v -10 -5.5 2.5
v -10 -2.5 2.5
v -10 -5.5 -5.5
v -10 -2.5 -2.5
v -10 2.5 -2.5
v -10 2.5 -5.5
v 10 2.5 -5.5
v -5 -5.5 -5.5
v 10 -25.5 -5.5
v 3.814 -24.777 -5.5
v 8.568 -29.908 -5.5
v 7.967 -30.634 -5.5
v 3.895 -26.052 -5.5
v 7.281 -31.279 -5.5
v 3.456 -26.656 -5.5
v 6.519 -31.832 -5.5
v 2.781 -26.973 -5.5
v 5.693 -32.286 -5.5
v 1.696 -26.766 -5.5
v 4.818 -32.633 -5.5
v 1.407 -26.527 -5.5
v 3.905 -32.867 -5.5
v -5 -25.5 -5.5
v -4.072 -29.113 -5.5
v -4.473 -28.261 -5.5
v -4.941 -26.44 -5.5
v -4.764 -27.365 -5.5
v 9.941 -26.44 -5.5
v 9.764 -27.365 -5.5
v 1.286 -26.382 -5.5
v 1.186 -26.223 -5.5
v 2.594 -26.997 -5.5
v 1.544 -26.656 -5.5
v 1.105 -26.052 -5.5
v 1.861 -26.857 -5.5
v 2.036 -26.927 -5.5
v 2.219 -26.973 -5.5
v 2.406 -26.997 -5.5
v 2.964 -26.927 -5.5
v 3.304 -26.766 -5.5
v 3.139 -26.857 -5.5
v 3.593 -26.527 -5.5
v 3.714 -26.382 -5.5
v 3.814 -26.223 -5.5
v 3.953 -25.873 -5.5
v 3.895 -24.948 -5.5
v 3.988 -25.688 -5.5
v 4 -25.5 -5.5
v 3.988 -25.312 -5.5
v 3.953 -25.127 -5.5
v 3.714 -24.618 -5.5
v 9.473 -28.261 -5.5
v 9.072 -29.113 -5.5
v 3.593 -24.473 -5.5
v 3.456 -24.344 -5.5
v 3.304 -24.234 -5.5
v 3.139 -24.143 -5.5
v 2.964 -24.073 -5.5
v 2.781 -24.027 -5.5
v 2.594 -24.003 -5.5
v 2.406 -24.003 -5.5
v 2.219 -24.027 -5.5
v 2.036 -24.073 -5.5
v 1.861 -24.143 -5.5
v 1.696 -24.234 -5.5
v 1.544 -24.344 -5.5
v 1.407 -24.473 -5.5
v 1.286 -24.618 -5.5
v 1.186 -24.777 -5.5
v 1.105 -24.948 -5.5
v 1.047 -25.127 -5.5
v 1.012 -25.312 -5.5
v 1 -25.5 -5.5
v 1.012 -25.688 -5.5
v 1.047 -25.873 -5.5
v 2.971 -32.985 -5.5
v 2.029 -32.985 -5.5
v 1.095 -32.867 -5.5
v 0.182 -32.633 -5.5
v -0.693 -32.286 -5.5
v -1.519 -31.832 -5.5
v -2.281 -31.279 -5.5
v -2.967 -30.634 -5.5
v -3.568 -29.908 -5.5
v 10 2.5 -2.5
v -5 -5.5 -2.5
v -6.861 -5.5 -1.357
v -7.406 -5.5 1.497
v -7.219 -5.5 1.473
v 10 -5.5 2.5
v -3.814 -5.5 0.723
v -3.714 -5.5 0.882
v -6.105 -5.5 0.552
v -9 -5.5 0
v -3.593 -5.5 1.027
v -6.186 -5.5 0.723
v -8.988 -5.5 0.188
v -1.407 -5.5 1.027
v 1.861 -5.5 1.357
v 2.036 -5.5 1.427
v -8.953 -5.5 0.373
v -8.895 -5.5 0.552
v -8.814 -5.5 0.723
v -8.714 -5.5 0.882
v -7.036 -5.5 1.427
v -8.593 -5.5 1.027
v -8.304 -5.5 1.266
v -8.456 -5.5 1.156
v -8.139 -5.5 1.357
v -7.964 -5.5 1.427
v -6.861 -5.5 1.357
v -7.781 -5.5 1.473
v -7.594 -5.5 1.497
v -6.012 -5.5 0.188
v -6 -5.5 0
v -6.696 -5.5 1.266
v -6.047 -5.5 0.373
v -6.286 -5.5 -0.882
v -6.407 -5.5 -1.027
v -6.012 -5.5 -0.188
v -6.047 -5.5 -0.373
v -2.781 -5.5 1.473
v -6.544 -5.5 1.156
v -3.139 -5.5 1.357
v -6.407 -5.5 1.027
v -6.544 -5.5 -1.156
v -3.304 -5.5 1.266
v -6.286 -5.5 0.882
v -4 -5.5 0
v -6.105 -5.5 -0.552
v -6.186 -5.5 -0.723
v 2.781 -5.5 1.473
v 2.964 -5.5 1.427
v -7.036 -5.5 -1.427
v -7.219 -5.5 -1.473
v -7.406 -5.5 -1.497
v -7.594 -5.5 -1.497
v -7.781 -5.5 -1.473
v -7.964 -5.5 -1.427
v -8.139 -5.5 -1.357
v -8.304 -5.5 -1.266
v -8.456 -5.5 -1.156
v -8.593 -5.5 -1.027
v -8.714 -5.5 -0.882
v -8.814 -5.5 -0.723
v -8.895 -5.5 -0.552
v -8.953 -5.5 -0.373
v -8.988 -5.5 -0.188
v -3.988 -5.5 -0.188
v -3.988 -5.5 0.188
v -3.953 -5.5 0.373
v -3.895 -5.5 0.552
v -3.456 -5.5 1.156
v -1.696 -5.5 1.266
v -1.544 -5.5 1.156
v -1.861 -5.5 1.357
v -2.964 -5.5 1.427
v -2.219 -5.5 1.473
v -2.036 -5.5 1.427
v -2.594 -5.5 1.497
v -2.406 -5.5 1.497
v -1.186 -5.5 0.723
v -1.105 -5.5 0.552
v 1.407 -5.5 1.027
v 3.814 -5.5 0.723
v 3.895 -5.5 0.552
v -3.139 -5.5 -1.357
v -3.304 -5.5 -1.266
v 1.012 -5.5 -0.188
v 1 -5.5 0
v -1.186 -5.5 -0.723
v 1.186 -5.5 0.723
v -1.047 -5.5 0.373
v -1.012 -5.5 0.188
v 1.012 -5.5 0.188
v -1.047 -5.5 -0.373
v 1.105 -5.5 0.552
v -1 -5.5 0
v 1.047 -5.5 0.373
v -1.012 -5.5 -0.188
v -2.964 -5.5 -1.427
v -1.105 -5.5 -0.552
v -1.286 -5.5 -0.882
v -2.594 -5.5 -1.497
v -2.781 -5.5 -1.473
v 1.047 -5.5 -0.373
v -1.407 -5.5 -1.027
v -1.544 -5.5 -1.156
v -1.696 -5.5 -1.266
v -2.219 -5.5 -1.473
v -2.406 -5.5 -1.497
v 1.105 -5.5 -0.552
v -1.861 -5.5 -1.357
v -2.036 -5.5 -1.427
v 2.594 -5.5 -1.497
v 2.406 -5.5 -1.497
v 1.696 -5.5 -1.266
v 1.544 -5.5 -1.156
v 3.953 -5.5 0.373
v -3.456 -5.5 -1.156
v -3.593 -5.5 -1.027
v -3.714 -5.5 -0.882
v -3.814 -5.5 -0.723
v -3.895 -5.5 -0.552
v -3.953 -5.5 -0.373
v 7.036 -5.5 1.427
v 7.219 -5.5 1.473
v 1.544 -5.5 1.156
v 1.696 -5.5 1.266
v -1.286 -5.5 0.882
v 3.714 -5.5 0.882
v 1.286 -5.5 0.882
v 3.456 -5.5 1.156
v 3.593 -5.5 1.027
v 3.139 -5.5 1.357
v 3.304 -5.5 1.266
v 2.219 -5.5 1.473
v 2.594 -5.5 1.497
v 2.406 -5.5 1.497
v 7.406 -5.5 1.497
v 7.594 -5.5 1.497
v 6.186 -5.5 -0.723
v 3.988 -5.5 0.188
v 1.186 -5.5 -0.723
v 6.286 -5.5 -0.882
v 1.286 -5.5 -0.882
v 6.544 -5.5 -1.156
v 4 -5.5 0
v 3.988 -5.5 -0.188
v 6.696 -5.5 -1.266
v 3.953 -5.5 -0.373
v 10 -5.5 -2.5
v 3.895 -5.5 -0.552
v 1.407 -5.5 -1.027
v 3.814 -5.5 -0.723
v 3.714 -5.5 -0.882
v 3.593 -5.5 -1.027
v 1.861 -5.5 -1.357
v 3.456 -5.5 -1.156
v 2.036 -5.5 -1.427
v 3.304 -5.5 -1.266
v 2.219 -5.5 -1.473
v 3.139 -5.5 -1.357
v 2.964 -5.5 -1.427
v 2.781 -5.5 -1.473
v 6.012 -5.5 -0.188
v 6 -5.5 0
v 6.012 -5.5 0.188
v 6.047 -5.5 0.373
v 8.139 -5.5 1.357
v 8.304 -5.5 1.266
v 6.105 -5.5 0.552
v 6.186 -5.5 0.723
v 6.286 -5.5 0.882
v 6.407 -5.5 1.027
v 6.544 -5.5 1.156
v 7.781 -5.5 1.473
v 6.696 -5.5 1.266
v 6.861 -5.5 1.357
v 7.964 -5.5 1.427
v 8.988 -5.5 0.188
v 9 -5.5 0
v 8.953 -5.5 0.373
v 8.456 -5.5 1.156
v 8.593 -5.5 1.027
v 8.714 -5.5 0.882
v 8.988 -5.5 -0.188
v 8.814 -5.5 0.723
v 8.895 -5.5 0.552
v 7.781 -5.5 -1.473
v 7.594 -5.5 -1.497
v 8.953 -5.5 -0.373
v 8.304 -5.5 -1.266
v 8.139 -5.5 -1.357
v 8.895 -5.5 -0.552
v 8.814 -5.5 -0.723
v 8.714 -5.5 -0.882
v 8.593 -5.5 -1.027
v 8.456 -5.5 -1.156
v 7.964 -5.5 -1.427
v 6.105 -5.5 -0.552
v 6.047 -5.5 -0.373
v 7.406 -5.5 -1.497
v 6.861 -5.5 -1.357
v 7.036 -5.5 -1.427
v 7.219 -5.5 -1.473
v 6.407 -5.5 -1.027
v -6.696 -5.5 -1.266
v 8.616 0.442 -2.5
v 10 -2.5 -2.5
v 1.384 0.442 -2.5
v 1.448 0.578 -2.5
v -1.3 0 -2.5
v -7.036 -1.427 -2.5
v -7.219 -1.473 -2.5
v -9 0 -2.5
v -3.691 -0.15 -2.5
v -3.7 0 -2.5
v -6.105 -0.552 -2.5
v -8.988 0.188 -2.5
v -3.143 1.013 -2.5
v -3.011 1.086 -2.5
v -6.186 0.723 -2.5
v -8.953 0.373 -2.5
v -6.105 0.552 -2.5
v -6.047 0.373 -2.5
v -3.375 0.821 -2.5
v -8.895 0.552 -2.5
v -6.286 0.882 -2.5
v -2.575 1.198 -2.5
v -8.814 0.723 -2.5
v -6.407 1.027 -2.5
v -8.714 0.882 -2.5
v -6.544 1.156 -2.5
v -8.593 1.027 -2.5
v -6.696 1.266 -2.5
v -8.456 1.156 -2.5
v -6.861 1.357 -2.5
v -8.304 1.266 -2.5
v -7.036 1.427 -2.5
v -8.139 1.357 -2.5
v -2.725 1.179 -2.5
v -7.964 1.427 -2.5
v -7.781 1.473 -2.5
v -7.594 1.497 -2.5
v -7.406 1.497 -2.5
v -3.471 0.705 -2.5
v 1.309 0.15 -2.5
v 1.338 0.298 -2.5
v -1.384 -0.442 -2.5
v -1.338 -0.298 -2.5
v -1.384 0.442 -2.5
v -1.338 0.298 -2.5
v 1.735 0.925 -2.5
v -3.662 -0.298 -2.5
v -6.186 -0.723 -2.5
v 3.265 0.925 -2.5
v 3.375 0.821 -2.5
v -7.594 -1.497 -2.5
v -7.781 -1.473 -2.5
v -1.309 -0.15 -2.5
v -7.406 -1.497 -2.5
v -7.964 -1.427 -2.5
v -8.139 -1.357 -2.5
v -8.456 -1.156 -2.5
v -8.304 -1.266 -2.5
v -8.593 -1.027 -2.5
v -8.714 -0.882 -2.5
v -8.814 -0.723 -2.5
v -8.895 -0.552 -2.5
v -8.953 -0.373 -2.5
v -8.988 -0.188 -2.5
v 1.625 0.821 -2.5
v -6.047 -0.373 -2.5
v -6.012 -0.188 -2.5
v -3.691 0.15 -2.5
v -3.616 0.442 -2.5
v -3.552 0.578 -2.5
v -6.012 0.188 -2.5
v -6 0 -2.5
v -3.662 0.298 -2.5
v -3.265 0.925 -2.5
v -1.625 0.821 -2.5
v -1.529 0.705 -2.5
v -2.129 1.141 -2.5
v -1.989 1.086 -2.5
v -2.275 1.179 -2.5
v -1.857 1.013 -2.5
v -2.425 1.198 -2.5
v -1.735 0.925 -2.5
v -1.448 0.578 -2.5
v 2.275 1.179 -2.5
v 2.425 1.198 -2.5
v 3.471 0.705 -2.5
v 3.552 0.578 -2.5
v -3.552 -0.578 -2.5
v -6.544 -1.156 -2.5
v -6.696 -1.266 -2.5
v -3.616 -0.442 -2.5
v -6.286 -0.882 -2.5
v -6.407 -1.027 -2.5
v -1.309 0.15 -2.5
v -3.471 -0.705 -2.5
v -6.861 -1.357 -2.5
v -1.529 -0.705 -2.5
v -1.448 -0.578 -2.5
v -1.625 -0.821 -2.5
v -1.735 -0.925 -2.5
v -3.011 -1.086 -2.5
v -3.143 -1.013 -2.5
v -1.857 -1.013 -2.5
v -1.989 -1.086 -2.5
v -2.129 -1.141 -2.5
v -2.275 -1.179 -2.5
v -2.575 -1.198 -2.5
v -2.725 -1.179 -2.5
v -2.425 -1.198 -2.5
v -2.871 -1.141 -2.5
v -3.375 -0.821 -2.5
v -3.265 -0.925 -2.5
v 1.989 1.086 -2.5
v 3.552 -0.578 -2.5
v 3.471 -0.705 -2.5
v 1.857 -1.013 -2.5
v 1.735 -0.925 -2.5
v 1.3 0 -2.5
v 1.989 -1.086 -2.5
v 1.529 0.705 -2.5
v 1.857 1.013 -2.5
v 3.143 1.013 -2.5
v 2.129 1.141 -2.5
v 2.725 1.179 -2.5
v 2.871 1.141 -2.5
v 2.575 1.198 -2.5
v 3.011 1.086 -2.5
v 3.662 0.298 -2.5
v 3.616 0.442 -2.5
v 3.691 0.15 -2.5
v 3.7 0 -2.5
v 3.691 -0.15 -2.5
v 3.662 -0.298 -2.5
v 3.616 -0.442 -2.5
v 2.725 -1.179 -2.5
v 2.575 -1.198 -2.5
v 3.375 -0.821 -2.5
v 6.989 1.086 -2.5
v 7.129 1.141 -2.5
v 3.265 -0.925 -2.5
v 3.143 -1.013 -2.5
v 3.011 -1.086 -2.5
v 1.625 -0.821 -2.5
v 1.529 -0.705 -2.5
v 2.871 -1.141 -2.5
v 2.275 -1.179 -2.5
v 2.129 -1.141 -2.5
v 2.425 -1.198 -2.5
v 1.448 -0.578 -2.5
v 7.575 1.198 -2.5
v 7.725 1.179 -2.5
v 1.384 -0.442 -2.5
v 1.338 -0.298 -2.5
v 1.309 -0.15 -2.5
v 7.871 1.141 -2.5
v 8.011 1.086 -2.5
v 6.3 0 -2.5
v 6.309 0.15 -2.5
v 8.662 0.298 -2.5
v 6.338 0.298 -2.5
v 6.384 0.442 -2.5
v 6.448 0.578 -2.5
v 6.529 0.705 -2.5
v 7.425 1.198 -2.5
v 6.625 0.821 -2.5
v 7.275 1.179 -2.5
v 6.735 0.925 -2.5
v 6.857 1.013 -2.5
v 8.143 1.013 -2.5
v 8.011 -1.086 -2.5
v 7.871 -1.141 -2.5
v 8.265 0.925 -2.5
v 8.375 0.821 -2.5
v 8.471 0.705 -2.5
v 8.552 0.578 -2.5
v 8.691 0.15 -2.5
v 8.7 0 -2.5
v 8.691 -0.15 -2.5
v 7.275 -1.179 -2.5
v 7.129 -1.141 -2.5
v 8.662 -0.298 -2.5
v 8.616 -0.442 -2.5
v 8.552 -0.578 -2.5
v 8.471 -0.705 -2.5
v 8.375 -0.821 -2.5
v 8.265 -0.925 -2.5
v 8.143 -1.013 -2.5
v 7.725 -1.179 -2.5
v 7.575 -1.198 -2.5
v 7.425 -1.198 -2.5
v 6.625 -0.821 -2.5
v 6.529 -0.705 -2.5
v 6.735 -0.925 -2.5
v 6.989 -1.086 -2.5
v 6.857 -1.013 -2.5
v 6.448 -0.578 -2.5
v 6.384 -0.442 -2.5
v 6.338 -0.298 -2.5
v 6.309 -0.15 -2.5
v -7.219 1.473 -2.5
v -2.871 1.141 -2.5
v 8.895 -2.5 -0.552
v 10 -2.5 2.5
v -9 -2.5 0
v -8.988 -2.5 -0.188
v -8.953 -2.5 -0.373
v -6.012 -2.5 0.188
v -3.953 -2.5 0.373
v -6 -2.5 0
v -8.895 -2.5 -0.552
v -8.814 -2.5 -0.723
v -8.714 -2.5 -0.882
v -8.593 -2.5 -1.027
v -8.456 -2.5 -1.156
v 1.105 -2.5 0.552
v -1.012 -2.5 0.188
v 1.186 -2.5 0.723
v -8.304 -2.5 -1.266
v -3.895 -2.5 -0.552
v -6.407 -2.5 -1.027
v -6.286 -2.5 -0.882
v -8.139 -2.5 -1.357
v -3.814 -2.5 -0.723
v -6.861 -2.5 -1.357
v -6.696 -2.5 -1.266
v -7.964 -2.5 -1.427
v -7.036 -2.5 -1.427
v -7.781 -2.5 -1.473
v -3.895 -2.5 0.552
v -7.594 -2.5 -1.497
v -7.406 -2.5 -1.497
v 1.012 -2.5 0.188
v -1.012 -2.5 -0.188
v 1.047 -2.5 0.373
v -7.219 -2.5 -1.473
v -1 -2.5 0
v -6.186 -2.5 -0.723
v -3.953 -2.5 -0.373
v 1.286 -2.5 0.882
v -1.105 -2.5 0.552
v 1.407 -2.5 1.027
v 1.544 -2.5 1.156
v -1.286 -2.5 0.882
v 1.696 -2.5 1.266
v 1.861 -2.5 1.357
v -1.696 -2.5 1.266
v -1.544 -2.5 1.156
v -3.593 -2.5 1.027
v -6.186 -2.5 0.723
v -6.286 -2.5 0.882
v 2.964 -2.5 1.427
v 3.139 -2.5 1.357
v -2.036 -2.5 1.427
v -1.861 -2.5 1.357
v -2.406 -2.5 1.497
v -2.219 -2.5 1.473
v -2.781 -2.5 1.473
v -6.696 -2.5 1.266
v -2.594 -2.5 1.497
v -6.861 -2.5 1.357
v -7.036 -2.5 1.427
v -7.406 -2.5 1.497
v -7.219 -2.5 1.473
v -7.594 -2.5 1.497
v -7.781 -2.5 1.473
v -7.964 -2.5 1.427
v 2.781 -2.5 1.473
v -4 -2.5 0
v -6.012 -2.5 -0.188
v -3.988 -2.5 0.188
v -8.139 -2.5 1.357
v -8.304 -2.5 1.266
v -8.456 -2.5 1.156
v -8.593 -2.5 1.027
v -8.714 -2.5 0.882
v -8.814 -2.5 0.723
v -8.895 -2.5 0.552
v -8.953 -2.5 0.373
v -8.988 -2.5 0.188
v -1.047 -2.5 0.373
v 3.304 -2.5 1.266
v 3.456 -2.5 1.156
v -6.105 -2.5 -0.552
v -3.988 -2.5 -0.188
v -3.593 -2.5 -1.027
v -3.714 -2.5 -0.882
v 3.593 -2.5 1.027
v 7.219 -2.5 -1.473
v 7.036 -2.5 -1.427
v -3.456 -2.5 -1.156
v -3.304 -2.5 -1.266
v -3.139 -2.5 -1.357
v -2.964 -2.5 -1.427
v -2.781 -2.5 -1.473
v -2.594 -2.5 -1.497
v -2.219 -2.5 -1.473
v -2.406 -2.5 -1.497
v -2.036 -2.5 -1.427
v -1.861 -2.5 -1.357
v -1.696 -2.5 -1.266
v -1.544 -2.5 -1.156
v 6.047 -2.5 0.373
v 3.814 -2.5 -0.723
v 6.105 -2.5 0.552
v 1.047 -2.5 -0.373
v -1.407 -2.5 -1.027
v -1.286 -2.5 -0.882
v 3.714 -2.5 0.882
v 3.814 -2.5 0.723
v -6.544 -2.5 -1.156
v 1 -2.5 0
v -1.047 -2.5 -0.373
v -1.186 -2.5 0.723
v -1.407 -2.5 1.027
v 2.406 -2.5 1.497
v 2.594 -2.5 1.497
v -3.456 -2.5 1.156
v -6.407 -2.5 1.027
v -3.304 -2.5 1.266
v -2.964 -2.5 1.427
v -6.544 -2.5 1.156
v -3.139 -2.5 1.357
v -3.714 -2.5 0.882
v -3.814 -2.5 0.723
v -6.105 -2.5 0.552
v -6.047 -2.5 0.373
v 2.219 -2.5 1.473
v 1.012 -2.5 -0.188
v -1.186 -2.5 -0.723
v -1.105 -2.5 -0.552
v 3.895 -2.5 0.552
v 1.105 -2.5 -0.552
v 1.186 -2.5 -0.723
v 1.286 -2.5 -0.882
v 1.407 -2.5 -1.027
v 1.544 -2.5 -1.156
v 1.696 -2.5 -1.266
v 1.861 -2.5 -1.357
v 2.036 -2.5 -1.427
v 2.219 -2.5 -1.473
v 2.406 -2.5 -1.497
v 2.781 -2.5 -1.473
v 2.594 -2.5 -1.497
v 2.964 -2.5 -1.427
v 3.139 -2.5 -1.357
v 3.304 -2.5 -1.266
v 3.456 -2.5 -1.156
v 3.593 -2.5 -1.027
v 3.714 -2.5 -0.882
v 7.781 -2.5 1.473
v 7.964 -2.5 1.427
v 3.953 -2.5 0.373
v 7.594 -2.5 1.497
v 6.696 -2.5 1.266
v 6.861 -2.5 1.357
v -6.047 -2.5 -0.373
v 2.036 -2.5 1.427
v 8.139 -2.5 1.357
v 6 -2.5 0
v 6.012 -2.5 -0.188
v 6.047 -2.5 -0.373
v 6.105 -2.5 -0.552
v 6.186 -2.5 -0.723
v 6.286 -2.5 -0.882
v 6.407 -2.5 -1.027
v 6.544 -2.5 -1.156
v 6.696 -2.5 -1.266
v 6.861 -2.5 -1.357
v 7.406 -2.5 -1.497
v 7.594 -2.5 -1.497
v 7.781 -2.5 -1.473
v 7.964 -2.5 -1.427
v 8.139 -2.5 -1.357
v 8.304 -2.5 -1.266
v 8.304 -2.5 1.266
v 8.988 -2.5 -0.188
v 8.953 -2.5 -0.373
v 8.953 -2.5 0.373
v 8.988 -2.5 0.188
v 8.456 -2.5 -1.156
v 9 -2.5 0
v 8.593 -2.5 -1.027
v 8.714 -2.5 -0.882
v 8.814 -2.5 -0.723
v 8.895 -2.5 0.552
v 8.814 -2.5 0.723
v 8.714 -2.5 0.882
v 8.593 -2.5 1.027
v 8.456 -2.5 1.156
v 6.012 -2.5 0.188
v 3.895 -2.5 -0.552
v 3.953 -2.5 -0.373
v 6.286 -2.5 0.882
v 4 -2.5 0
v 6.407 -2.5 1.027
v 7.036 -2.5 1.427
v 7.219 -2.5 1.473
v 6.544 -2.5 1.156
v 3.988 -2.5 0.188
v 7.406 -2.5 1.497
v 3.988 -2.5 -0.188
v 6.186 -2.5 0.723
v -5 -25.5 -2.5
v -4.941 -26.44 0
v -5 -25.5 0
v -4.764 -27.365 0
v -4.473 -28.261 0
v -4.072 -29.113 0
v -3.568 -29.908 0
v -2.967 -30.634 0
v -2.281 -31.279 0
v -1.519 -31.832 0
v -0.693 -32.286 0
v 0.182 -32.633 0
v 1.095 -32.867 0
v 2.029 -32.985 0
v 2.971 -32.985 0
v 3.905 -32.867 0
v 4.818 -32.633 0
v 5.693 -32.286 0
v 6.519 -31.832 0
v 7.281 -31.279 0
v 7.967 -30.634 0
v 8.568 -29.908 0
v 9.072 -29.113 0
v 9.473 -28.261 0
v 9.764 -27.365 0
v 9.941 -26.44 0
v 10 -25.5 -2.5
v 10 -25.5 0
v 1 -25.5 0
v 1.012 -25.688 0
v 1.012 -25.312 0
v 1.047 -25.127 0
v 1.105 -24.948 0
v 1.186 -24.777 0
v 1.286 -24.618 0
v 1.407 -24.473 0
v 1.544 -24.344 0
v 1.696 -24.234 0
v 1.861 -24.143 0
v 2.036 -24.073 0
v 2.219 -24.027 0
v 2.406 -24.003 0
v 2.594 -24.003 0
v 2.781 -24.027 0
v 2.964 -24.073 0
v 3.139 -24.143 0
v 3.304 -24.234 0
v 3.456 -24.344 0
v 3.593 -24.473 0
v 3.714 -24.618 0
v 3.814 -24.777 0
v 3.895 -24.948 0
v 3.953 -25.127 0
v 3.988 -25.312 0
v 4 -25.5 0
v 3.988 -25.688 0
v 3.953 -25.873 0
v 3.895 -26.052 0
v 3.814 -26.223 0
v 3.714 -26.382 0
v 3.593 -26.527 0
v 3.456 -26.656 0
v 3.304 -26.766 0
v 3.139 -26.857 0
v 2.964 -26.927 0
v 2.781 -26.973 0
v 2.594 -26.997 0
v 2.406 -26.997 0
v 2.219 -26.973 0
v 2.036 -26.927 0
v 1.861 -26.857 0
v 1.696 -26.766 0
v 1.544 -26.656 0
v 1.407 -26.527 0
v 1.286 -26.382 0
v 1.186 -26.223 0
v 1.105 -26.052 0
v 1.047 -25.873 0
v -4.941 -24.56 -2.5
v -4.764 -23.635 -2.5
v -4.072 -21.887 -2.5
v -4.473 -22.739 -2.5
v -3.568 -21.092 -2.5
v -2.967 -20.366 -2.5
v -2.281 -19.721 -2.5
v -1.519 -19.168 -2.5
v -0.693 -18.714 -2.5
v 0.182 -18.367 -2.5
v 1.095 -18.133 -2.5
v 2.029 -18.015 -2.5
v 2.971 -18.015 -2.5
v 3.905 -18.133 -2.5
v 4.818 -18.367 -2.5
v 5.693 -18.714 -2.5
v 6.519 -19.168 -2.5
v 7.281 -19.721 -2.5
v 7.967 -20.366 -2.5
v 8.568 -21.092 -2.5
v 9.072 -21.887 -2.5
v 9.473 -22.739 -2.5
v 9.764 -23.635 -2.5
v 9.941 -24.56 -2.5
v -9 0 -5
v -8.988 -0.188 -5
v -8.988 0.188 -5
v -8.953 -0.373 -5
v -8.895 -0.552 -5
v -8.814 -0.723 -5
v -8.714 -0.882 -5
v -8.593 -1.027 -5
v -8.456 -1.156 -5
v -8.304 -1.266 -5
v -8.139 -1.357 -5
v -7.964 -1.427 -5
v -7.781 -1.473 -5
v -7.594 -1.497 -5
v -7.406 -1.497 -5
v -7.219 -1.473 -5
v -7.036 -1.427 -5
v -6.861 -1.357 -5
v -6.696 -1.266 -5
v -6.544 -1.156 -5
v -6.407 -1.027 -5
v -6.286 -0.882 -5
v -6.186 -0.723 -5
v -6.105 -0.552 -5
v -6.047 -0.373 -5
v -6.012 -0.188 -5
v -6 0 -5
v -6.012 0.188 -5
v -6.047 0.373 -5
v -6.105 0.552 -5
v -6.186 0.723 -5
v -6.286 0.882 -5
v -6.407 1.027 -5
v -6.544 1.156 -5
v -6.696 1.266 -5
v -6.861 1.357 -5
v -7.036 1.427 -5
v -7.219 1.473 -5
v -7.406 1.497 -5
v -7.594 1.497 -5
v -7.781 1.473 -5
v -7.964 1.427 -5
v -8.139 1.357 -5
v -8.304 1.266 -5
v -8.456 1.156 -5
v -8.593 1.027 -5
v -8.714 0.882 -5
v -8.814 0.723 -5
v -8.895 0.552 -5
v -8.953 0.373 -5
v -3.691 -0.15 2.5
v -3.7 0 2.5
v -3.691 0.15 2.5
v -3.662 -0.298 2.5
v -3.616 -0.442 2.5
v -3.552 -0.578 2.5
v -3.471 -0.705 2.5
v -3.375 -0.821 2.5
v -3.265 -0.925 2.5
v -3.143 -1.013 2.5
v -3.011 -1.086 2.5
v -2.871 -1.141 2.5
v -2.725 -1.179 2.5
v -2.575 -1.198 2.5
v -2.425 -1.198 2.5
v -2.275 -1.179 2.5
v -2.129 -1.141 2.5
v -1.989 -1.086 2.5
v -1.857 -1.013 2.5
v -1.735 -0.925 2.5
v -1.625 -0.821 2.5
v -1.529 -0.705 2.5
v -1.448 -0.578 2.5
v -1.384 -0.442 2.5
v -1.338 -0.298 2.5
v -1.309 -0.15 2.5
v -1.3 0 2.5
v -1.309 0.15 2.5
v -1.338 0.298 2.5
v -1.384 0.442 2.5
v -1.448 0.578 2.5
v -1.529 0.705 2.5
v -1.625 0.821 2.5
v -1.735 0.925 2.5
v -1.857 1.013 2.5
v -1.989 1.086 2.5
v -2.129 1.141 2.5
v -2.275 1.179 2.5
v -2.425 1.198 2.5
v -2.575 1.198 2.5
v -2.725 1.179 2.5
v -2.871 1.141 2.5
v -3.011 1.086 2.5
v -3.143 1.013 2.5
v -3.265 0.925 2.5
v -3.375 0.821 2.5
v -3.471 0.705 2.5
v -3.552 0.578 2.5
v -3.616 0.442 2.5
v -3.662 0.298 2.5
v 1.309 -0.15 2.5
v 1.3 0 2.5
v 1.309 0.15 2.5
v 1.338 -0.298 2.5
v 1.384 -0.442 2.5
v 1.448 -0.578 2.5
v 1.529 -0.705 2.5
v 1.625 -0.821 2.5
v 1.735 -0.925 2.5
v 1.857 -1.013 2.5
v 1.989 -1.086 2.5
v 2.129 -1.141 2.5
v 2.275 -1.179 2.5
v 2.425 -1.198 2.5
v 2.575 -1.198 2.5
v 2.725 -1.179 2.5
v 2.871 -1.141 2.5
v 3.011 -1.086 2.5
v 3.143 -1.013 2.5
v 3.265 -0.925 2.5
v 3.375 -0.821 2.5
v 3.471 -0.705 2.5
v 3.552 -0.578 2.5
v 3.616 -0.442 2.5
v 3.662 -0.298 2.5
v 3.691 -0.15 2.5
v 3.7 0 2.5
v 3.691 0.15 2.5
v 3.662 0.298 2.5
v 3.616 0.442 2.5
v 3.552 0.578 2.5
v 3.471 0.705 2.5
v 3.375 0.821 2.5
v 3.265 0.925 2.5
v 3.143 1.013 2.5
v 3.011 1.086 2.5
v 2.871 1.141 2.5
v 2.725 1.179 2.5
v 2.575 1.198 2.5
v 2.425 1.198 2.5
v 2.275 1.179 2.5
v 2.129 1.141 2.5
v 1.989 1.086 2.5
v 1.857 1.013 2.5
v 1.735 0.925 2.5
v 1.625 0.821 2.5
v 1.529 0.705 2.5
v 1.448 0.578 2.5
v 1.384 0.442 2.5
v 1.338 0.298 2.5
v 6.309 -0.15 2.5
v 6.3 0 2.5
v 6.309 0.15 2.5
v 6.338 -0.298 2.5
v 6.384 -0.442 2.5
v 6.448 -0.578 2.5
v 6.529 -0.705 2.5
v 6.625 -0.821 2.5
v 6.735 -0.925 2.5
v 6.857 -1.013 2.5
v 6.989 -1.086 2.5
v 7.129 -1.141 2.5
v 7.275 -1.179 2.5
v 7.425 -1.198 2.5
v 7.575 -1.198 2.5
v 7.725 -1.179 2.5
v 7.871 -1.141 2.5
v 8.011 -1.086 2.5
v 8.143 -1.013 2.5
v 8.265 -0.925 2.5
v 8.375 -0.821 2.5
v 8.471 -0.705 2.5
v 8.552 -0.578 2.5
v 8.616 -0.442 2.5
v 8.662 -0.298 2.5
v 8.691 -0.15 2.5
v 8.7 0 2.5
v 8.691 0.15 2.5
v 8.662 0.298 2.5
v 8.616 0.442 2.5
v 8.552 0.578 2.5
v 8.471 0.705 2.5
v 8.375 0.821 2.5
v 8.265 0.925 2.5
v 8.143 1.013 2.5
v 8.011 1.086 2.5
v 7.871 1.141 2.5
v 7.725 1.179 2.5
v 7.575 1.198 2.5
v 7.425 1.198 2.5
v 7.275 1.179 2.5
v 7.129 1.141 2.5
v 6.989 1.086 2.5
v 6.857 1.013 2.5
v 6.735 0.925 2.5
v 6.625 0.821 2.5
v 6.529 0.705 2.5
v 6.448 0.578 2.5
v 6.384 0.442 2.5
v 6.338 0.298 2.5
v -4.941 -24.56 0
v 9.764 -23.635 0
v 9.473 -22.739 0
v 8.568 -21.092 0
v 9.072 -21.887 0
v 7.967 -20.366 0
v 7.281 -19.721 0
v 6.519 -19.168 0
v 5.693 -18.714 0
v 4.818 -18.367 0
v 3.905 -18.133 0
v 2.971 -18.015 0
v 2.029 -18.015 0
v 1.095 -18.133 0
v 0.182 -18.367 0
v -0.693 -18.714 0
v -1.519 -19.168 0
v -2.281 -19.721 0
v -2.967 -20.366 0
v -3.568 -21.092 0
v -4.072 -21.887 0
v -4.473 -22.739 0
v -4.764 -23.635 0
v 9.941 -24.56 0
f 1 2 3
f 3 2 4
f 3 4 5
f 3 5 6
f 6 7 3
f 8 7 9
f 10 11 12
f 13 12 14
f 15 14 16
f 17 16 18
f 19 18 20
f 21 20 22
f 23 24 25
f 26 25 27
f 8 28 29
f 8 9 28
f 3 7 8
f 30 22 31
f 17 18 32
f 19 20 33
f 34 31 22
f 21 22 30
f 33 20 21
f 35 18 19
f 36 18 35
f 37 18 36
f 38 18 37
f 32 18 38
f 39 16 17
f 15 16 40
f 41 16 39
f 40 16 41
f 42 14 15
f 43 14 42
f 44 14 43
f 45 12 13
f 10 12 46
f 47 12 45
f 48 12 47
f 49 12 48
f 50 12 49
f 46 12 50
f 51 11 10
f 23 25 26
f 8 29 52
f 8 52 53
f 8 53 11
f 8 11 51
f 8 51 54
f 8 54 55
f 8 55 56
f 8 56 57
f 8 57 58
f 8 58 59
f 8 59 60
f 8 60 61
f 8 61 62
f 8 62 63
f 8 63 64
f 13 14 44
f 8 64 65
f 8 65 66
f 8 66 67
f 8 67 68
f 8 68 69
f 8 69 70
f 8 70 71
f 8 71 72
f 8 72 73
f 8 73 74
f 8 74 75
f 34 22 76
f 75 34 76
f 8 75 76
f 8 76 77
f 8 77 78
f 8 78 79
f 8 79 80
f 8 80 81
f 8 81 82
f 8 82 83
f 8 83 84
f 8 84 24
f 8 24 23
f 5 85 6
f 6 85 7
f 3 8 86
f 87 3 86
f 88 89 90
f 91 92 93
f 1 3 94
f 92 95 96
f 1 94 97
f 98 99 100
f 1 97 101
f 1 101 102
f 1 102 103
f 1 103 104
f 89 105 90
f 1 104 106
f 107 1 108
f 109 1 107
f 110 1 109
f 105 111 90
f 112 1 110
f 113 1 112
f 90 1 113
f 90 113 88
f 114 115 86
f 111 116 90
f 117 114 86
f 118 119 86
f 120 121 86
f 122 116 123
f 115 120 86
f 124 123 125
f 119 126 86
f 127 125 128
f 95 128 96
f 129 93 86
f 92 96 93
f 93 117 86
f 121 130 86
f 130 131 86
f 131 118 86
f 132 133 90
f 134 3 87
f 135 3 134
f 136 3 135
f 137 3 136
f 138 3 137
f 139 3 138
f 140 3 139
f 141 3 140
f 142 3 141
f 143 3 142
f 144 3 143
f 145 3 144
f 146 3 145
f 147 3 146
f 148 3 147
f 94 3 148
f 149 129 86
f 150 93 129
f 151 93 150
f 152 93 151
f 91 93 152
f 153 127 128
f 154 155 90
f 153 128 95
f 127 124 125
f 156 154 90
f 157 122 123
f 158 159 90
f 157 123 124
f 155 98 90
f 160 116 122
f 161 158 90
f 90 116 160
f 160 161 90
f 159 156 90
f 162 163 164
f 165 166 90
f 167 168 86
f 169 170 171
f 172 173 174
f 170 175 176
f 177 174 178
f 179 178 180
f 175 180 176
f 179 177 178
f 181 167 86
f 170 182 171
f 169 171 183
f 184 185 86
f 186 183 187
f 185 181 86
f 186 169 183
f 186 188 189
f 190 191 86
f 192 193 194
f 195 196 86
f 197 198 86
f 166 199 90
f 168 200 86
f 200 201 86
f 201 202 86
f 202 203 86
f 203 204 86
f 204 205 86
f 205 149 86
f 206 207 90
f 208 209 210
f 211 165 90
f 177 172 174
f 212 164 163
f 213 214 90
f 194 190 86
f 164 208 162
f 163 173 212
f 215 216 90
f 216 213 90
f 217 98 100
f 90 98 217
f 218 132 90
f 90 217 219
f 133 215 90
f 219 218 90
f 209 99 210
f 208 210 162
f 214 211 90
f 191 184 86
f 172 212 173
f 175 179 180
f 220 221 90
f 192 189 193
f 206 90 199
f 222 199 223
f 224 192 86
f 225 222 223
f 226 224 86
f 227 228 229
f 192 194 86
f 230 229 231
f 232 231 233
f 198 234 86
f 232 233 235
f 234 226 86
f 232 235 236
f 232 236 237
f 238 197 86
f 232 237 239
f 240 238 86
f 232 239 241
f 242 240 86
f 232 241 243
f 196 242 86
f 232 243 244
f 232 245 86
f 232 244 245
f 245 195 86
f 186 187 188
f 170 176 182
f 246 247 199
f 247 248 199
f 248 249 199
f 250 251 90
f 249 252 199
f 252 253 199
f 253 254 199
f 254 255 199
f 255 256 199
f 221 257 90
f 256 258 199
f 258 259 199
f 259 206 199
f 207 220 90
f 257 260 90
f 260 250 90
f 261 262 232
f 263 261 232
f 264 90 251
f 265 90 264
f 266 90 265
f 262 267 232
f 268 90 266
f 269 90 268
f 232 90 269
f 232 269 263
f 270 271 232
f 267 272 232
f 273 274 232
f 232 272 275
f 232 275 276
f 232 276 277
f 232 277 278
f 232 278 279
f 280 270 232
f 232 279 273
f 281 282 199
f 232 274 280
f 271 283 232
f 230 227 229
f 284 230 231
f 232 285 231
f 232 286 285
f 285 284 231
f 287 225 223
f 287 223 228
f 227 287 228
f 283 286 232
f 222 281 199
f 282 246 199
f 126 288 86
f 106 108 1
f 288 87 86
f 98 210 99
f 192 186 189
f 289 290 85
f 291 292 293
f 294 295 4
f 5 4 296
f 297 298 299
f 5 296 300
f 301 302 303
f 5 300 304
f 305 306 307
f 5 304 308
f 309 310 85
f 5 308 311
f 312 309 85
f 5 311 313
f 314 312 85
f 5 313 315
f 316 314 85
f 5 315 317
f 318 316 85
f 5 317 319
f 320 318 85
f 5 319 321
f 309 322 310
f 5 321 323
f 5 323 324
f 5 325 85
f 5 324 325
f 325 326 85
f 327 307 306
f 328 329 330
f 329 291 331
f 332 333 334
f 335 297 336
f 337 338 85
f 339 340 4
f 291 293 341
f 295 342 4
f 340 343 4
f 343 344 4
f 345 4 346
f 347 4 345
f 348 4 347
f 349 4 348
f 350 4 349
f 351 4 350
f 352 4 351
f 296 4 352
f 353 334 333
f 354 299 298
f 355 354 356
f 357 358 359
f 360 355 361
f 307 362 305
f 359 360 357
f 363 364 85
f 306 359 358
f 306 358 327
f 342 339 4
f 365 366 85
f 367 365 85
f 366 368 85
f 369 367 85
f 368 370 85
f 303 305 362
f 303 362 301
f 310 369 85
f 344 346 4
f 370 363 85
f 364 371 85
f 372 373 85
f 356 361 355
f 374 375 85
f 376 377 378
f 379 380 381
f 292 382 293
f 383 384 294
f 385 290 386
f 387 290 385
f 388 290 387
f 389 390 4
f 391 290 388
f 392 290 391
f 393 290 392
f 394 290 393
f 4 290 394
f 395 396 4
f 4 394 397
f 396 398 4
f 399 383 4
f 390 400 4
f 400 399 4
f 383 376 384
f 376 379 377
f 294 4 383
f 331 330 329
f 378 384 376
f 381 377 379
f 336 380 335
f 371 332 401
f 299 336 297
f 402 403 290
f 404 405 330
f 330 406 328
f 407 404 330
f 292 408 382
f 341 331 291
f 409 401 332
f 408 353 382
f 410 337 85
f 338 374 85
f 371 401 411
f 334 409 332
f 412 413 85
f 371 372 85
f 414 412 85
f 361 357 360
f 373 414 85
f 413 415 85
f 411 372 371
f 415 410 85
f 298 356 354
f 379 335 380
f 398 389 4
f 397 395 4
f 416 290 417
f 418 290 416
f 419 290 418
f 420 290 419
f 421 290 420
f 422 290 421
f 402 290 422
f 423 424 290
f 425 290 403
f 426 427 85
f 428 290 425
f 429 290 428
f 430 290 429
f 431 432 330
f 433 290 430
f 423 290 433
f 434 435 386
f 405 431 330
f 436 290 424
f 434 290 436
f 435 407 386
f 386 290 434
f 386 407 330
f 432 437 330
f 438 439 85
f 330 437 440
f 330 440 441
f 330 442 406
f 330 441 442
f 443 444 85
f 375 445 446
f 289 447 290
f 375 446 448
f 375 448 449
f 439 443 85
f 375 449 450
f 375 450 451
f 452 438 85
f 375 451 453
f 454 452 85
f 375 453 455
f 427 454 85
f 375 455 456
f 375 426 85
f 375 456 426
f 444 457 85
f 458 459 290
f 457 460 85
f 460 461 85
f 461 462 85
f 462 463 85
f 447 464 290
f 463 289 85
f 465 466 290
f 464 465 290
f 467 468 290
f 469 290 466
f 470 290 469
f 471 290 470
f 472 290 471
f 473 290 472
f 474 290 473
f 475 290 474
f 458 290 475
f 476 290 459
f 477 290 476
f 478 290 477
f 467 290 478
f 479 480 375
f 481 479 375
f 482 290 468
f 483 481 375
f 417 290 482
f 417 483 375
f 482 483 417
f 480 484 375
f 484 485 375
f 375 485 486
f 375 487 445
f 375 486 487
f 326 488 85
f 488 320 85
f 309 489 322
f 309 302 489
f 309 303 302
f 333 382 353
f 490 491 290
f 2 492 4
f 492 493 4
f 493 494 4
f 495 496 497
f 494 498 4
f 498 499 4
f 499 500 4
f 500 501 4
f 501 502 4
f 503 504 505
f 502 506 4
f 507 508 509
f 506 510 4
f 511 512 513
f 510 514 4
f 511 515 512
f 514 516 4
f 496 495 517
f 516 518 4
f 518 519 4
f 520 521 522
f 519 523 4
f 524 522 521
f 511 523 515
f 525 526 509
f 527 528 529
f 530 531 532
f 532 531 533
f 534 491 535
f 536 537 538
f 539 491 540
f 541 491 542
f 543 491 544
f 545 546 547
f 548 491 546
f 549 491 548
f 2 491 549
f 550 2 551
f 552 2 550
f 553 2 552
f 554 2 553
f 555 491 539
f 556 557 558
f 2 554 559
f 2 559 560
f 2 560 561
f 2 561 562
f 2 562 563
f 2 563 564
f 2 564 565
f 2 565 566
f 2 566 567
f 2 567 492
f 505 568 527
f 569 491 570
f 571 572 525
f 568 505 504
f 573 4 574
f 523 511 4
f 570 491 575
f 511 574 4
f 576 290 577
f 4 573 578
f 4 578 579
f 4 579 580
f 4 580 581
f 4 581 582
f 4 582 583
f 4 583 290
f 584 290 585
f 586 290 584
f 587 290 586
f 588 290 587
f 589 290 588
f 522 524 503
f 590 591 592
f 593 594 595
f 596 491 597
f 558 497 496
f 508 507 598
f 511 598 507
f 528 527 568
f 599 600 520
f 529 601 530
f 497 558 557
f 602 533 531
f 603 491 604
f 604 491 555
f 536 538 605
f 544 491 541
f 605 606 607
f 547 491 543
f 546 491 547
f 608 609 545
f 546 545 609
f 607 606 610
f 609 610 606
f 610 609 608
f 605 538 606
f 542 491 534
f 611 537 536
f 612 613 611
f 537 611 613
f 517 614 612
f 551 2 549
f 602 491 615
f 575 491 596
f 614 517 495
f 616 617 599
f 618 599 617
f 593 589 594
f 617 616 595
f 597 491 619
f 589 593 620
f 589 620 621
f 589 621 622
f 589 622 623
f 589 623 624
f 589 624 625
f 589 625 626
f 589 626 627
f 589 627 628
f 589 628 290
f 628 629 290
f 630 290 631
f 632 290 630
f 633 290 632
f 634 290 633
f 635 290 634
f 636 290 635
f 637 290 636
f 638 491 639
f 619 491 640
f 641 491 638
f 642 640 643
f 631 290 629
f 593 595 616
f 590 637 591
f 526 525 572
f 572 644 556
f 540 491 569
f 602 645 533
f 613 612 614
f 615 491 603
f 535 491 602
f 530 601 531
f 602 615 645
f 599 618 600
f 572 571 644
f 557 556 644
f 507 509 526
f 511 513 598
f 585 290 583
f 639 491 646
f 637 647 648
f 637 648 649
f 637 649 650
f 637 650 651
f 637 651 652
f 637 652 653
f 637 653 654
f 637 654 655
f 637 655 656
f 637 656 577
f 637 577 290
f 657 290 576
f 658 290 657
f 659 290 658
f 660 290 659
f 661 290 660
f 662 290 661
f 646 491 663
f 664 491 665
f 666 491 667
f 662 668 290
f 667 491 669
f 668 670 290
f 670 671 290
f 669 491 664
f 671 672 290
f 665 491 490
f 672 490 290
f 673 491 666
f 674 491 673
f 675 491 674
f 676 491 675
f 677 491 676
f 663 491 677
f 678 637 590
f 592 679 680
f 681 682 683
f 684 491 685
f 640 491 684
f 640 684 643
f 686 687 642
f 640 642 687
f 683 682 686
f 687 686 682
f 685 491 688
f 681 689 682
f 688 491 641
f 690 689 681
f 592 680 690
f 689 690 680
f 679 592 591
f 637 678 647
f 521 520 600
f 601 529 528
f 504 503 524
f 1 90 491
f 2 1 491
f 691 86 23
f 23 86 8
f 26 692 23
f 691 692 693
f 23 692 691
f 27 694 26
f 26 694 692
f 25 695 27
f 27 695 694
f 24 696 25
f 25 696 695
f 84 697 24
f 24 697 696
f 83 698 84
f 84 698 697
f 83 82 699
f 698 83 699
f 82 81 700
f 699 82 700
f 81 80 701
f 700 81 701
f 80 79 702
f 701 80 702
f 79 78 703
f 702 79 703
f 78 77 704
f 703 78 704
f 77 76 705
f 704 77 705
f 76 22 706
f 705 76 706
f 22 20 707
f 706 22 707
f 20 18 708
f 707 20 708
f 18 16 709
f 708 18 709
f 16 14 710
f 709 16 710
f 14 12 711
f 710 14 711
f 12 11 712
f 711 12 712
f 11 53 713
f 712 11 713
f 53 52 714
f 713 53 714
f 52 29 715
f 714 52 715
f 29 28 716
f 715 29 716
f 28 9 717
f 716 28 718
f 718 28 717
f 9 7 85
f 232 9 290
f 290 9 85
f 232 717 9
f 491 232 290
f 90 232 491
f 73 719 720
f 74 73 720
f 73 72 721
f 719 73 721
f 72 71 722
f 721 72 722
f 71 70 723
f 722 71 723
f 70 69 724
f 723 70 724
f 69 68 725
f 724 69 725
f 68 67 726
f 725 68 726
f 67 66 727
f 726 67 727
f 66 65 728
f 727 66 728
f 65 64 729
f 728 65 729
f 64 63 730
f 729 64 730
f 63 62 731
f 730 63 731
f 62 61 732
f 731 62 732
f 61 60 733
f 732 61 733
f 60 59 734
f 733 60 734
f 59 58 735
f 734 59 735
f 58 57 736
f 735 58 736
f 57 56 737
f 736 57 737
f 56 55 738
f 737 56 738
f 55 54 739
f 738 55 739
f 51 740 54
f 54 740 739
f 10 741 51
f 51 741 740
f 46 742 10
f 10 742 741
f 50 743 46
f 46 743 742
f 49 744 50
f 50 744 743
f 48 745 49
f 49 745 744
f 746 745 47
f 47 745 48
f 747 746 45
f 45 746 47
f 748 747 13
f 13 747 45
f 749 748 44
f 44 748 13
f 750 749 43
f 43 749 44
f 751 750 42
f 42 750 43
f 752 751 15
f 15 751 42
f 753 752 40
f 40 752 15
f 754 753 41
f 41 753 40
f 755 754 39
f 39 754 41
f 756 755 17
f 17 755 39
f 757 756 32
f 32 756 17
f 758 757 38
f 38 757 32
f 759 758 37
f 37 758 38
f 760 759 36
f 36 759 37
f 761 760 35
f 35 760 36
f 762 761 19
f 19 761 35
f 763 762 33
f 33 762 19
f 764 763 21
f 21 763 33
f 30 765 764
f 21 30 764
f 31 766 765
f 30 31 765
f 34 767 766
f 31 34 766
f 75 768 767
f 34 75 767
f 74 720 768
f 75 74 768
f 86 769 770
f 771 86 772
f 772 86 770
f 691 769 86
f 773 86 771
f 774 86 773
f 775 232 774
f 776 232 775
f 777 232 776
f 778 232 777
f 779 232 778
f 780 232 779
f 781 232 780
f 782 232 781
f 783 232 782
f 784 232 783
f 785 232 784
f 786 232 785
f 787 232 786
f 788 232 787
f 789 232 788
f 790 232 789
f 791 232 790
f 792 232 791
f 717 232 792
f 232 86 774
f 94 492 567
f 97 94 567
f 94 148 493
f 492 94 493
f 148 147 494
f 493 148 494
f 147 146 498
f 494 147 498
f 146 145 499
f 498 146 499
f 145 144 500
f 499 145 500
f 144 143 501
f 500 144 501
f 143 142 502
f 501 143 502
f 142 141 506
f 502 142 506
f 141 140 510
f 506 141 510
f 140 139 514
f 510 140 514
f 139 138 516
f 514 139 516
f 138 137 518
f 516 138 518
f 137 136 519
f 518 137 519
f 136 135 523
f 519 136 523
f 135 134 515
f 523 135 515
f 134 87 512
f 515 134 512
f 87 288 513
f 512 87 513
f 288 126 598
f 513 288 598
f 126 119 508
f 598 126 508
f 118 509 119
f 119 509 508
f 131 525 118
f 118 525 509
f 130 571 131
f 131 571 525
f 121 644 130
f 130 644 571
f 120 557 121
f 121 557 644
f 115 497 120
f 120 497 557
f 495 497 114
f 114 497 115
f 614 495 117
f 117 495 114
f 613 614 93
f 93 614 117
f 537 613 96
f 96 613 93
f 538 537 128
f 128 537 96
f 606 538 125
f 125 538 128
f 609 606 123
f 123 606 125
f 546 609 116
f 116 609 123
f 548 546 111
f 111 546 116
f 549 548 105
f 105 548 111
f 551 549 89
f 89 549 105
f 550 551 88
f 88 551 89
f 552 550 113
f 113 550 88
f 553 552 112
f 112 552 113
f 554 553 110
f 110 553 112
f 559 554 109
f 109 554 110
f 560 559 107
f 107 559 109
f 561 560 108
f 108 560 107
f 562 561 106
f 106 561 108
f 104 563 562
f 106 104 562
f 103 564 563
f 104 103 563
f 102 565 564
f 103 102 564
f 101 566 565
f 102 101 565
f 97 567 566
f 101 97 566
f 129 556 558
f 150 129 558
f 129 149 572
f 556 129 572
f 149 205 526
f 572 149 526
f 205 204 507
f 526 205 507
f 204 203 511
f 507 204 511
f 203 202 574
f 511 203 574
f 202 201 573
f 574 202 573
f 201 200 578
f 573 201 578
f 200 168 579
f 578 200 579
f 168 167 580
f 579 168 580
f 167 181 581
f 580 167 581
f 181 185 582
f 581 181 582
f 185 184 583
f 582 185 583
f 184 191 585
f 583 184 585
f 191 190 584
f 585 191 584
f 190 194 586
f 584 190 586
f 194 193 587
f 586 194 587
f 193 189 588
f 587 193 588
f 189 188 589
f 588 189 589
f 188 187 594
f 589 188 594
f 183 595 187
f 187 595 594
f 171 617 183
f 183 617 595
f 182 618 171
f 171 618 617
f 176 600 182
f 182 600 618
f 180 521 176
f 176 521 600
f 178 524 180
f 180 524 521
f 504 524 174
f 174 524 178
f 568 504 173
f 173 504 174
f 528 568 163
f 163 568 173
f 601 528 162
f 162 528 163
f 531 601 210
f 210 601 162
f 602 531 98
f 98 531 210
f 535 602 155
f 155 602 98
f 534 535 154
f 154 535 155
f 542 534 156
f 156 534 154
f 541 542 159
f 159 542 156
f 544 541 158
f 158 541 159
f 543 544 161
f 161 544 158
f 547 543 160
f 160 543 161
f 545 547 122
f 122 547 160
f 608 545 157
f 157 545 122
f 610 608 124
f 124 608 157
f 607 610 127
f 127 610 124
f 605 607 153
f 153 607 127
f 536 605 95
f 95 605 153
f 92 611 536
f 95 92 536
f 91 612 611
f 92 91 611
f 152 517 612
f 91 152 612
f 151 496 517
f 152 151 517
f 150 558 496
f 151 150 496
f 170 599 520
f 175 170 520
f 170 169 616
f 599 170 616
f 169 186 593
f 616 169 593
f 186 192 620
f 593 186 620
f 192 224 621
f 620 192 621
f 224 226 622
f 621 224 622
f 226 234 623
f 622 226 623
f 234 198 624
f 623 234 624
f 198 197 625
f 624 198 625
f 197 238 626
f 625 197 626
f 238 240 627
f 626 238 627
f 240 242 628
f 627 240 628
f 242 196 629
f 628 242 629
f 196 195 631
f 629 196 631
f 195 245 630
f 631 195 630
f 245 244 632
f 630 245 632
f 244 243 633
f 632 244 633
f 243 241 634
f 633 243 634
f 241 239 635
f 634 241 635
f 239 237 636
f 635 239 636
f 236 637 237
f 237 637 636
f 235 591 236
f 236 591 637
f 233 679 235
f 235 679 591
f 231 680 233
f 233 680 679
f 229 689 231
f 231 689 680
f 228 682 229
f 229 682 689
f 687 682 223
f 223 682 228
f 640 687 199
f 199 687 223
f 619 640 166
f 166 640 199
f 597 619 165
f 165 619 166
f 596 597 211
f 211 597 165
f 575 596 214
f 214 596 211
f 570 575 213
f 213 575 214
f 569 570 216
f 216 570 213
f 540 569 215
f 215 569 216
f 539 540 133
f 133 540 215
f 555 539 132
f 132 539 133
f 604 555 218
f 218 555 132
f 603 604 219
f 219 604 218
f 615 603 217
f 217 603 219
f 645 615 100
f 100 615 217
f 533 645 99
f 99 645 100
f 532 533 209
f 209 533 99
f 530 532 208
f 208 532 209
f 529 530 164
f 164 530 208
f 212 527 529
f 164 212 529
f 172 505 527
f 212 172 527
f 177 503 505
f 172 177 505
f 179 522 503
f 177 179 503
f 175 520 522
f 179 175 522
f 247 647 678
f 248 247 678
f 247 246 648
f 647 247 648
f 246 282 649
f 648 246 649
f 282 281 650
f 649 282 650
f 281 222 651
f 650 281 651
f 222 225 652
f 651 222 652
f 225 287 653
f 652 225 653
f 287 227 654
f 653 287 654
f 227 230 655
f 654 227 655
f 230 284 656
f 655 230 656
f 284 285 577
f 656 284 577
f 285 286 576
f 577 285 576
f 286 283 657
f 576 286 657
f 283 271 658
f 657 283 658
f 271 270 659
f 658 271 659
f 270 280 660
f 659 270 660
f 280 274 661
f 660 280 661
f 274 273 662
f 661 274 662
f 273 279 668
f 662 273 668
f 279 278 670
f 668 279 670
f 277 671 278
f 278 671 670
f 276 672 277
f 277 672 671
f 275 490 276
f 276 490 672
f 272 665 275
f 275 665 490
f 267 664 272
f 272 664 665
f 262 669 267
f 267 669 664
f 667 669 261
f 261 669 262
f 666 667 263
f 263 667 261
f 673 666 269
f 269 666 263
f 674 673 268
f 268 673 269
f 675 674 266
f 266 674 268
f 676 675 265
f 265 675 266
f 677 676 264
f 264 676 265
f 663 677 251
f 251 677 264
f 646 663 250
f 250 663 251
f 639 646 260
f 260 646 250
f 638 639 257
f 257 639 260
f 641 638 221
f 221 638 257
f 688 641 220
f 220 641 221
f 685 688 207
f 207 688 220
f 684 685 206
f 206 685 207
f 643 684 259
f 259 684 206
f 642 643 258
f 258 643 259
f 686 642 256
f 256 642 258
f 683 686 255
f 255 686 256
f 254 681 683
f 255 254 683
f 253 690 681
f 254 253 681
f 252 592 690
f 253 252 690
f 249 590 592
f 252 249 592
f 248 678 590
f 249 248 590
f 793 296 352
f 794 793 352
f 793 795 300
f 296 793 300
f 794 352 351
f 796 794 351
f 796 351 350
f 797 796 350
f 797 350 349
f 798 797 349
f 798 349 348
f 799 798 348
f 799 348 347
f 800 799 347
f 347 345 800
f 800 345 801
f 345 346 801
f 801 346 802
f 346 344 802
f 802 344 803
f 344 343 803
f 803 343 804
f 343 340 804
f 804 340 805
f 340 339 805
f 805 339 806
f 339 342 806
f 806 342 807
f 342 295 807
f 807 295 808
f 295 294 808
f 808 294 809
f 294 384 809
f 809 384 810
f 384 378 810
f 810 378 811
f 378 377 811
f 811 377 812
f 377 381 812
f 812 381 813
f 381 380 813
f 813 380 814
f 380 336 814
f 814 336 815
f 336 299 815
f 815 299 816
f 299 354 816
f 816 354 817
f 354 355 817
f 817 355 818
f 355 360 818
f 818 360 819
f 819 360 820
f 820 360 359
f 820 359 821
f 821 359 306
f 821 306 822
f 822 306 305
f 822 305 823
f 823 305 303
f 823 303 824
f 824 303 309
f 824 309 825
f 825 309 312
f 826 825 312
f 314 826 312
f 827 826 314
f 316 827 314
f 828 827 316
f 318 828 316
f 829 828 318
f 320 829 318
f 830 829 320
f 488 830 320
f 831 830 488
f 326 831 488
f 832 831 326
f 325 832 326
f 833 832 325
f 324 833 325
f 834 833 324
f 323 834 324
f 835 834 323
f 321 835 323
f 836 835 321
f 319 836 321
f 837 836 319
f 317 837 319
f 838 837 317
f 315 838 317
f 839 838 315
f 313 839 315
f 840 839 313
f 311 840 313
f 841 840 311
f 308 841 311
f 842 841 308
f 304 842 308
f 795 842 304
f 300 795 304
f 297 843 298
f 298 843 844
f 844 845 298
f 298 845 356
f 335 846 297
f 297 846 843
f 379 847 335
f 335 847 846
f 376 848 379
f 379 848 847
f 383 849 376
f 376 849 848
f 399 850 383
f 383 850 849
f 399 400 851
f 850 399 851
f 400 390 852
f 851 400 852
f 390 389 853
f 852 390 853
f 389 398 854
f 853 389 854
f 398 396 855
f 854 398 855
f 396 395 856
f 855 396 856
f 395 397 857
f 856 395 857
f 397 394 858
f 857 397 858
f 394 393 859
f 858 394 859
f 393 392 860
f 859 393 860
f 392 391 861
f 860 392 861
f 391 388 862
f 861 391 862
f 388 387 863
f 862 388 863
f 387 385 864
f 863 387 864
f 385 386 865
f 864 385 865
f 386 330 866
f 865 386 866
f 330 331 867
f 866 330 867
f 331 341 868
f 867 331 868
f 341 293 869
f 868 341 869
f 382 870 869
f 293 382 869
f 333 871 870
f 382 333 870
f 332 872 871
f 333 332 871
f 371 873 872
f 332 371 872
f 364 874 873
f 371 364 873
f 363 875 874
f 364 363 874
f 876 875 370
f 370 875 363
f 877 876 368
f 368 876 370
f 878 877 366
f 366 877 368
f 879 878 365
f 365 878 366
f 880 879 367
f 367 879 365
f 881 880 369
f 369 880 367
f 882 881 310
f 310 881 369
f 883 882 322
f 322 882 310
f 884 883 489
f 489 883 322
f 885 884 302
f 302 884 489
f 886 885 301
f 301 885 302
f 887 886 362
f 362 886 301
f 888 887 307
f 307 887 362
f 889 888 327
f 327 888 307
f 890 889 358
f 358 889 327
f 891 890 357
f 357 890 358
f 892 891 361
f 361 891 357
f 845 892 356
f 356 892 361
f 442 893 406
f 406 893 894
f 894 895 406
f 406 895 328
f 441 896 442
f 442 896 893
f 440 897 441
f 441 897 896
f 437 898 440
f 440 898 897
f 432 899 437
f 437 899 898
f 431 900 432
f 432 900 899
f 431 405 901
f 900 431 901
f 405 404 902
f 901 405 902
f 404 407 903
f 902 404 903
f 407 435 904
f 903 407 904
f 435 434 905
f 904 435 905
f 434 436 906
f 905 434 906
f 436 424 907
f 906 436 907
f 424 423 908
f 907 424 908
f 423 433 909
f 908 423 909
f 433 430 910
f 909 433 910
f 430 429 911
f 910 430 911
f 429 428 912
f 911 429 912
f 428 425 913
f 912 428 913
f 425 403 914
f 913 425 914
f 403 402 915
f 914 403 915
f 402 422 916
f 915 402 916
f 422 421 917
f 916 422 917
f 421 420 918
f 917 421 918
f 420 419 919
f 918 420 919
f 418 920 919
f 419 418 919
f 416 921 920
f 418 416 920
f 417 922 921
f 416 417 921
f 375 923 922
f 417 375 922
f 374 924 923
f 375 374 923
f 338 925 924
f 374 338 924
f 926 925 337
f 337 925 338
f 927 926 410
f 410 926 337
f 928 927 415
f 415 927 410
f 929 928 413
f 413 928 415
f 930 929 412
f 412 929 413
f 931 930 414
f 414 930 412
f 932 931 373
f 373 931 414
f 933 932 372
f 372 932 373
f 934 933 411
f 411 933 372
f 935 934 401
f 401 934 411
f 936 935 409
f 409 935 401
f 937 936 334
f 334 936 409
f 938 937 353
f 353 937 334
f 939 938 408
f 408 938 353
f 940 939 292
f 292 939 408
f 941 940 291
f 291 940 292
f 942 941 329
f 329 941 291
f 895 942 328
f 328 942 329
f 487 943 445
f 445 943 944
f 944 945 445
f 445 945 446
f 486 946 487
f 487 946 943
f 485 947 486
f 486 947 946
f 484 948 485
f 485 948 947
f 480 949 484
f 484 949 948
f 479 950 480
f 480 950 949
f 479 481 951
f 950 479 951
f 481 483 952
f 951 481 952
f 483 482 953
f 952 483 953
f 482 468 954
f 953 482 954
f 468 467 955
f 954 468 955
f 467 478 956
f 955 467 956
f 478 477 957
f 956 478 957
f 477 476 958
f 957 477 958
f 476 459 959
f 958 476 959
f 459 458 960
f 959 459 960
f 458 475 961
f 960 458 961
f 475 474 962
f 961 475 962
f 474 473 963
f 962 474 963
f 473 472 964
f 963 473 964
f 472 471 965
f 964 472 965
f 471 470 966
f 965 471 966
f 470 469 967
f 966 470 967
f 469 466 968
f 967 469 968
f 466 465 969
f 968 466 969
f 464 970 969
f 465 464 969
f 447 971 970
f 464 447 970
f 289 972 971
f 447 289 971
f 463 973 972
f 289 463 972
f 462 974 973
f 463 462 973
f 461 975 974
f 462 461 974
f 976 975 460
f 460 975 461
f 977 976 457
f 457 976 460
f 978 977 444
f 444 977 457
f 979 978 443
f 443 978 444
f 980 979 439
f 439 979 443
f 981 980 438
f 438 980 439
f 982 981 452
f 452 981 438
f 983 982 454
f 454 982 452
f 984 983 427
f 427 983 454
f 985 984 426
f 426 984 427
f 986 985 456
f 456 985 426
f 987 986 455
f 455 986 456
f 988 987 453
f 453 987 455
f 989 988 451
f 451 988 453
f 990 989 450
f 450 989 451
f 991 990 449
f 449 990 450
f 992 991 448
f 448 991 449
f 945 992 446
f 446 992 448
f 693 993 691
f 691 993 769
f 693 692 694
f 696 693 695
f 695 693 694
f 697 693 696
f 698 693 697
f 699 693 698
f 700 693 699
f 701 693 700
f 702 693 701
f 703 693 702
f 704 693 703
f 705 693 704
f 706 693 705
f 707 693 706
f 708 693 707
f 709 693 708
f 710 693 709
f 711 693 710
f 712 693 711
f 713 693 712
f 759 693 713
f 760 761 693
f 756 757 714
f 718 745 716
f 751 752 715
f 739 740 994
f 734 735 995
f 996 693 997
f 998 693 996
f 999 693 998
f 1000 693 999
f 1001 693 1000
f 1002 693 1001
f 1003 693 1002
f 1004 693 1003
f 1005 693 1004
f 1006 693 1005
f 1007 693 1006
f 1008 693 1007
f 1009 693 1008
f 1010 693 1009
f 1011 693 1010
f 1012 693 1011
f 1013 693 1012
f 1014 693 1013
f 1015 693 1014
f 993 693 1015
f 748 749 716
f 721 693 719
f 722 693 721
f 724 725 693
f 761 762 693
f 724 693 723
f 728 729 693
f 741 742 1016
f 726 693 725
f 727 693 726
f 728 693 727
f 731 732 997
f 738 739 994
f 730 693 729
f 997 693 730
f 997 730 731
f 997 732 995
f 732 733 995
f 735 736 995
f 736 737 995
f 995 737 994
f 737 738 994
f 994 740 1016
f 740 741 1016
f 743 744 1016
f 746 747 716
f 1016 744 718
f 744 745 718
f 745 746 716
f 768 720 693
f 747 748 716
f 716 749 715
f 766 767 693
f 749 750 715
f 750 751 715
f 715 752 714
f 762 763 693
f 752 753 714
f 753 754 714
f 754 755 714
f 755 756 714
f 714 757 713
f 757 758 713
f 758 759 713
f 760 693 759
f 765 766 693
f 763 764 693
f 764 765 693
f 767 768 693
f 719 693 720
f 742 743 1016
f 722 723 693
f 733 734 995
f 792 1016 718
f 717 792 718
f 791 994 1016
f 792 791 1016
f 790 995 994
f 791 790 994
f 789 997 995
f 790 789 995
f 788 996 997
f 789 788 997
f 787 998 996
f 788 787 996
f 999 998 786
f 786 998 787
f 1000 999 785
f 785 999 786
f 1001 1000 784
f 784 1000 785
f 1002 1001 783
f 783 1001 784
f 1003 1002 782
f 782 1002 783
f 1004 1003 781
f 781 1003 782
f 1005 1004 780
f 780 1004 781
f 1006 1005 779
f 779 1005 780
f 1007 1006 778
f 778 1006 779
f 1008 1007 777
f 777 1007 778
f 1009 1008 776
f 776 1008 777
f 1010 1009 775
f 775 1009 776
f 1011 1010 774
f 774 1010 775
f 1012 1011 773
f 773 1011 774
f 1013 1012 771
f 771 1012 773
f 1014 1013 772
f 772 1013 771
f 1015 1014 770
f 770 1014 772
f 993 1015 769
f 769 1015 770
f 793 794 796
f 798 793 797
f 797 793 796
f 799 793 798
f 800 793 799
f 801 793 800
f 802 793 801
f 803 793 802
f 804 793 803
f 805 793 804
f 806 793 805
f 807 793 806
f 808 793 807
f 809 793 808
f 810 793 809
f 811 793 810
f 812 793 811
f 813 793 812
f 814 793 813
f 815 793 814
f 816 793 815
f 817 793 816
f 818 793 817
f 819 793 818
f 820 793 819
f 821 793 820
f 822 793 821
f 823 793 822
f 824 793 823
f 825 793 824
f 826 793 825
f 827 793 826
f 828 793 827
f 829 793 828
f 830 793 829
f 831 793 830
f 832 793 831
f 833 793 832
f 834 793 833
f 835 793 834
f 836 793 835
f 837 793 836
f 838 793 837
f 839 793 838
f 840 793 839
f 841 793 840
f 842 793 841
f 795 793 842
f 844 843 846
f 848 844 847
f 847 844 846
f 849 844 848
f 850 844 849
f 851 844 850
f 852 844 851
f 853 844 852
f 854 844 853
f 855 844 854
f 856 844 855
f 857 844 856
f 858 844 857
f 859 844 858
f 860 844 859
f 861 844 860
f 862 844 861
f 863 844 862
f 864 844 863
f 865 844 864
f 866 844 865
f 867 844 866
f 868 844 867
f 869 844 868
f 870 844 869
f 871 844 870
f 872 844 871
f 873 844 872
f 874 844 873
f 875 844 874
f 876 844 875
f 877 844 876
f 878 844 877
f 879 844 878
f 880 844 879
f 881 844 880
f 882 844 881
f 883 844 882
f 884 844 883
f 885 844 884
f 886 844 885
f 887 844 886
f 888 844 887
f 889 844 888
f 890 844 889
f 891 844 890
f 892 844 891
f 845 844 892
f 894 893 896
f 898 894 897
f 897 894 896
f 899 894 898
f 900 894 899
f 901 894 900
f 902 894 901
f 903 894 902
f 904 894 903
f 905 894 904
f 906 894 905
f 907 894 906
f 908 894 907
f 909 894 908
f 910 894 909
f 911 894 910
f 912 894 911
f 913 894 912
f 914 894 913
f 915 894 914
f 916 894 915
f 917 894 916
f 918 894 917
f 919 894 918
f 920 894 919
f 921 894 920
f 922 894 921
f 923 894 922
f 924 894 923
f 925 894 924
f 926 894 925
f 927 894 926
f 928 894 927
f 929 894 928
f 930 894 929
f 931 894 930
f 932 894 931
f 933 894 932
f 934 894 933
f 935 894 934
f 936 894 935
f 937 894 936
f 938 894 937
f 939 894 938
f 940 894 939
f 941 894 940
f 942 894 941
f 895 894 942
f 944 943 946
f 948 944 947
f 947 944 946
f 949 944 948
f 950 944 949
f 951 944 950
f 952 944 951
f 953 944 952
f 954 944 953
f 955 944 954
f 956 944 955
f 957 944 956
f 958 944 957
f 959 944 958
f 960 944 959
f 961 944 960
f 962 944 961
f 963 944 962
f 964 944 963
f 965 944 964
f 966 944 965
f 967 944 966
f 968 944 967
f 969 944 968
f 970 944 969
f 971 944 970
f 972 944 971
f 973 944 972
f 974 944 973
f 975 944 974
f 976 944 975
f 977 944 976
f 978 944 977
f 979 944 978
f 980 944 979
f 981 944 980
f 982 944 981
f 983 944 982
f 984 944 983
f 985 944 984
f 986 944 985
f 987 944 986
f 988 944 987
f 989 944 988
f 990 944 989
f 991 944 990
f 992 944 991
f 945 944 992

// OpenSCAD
Nx = 4;
Ny = 1;
Nz = 1;
Xoff = -0.5;
Yoff = -0.5;
Zoff = -0.5;
r = 1.2;
rl =1.5;
Dx = 5.0;
Dy = 5.0;
Dz = 5.0;
$fn = 50;
d = 3;
hm = 20;
dm = 2.5;
rlm = 1.5;

mirror([0,1,0]){

difference(){
	union(){
		translate([-Dx*Nx/2, -Dy*Ny/2, -Dz*Nz/2]){
			translate([0,0,-d]) cube([Dx*Nx,Dy*Ny+d,d]);
			translate([Dx,Dy*Ny+d,-d]) cube([Dx*(Nx-1),hm,d]);
			translate([Dx*(Nx+1)/2,Dy*Ny+d+hm,-d])	cylinder(r=Dx*(Nx-1)/2,h=d+dm);
			translate([0,Dy*Ny,0]) cube([Dx*Nx,d,Dz*Nz]);
		}

		for(yi = [1:Ny]){
			for(xi = [2:Nx]){
				translate([(Xoff+(xi-Nx/2))*Dx,(Yoff+(yi-Ny/2))*Dy,-Dz*Nz/2]){
					cylinder(Dz*Nz,r,r,0);
				}
			}
		}

	
	}

		rotate([-90,0,0]){
			for(zi = [1:Nz]){
				for(xi = [1:Nx]){
					translate([(Xoff+(xi-Nx/2))*Dx,(Zoff+(zi-Nz/2))*Dz,-Dy*Ny/2+Dy-1]){
						#cylinder(d+2,rl,rl,0);
					}
				}
			}
		}
	translate([Dx*(Nx+1)/2-Dx*Nx/2,Dy*Ny+d+hm-Dy*Ny/2,-d-Dz*Nz/2-1])	#cylinder(r=rlm,h=d+dm+2);

	translate([(Xoff+(1-Nx/2))*Dx,(Yoff+(1-Ny/2))*Dy,-Dz*Nz]){
		#cylinder(d+1,rl,rl,0);
	}

};
}
